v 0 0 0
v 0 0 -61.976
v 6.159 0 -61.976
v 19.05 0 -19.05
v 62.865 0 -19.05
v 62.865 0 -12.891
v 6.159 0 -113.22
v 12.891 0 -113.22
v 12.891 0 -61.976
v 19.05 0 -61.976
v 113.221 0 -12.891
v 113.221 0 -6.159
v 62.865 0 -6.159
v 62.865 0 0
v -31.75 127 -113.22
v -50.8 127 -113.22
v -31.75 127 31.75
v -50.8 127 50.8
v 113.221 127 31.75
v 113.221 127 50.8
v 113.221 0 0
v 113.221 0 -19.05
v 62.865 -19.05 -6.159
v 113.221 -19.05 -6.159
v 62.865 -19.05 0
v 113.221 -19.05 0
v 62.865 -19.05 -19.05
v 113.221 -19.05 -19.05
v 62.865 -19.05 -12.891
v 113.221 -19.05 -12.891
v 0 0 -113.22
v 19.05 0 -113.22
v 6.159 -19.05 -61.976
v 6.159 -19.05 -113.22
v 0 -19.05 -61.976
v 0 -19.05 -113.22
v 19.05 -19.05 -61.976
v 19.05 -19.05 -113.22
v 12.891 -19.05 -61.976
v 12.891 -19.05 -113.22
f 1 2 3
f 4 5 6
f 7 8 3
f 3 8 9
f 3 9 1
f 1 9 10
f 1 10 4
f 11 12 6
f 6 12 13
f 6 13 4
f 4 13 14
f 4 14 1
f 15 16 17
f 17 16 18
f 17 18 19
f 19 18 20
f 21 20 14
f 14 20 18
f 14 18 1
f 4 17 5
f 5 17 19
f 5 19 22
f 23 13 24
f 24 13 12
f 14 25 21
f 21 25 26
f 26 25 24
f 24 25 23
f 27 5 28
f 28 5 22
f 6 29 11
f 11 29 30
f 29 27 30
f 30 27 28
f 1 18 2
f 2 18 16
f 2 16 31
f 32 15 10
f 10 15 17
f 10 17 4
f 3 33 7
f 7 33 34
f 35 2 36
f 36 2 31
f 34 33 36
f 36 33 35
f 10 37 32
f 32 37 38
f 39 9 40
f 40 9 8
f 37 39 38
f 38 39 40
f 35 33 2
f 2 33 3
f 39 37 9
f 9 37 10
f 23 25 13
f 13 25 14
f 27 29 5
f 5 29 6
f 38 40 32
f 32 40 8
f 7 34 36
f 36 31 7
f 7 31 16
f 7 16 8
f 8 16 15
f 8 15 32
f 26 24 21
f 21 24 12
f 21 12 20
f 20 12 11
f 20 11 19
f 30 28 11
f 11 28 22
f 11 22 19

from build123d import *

# Parameters (mm, degrees)
SKETCH5_W           = 6.1595
SKETCH5_H           = 101.6
SKETCH5_W_2         = 101.6
SKETCH5_H_2         = 6.1595
BOSS_EXTRUDE1_DEPTH = 19.05
SKETCH6_W           = 333.025633445
SKETCH6_H           = 150.821732437
CUT_EXTRUDE1_DEPTH  = 205.486
SKETCH7_W           = 172.839732196
SKETCH7_H           = 155.996881263
CUT_EXTRUDE2_DEPTH  = 205.486


with BuildPart() as part:
    # Sketch2 → Loft1 section 0
    with BuildSketch(Plane(origin=(0, 127, 0), x_dir=(1, 0, 0), z_dir=(0, 1, 0))):
        with BuildLine():
            Line((-50.8, -50.8), (278.13, -50.8))
            Line((278.13, -50.8), (278.13, 276.352))
            Line((278.13, 276.352), (-50.8, 276.352))
            Line((-50.8, 276.352), (-50.8, -50.8))
        make_face()
    # Sketch1 → Loft1 section 1
    with BuildSketch(Plane(origin=(0, 0, 0), x_dir=(1, 0, 0), z_dir=(0, 1, 0))):
        with BuildLine():
            Line((0, 0), (227.33, 0))
            Line((227.33, 0), (227.33, 225.552))
            Line((227.33, 225.552), (0, 225.552))
            Line((0, 225.552), (0, 0))
        make_face()
    loft()

    # Sketch4 → Cut-Loft3 section 0
    with BuildSketch(Plane.XZ):
        with BuildLine():
            Line((208.28, -19.05), (19.05, -19.05))
            Line((19.05, -19.05), (19.05, -206.502))
            Line((19.05, -206.502), (208.28, -206.502))
            Line((208.28, -206.502), (208.28, -19.05))
        make_face()
    # Sketch3 → Cut-Loft3 section 1
    with BuildSketch(Plane(origin=(0, 127, 0), x_dir=(1, 0, 0), z_dir=(0, 1, 0))):
        with BuildLine():
            Line((-31.75, 257.302), (-31.75, -31.75))
            Line((-31.75, -31.75), (259.08, -31.75))
            Line((259.08, -31.75), (259.08, 257.302))
            Line((259.08, 257.302), (-31.75, 257.302))
        make_face()
    loft(mode=Mode.SUBTRACT)

    # Sketch5 → Boss-Extrude1 (add)
    with BuildSketch(Plane.XZ):
        with Locations((3.07975, -112.776)):
            Rectangle(SKETCH5_W, SKETCH5_H)
        with Locations((15.97025, -112.776)):
            Rectangle(SKETCH5_W, SKETCH5_H)
        with Locations((113.665, -3.07975)):
            Rectangle(SKETCH5_W_2, SKETCH5_H_2)
        with Locations((113.665, -15.97025)):
            Rectangle(SKETCH5_W_2, SKETCH5_H_2)
        with Locations((223.36125, -113.665)):
            Rectangle(SKETCH5_W, SKETCH5_H)
        with Locations((210.47075, -113.665)):
            Rectangle(SKETCH5_W, SKETCH5_H)
        with Locations((112.776, -223.36125)):
            Rectangle(SKETCH5_W_2, SKETCH5_H_2)
        with Locations((112.776, -210.47075)):
            Rectangle(SKETCH5_W_2, SKETCH5_H_2)
    extrude(amount=BOSS_EXTRUDE1_DEPTH)

    # Sketch6 → Cut-Extrude1 (cut)
    with BuildSketch(Plane.XY.offset(-113.2205)):
        with Locations((111.617183278, 51.589133782)):
            Rectangle(SKETCH6_W, SKETCH6_H)
    extrude(amount=-CUT_EXTRUDE1_DEPTH, mode=Mode.SUBTRACT)

    # Sketch7 → Cut-Extrude2 (cut)
    with BuildSketch(Plane.ZY.offset(-113.2205)):
        with Locations((-29.906934154, 52.245596061)):
            Rectangle(SKETCH7_W, SKETCH7_H)
    extrude(amount=-CUT_EXTRUDE2_DEPTH, mode=Mode.SUBTRACT)


solid = part.part
